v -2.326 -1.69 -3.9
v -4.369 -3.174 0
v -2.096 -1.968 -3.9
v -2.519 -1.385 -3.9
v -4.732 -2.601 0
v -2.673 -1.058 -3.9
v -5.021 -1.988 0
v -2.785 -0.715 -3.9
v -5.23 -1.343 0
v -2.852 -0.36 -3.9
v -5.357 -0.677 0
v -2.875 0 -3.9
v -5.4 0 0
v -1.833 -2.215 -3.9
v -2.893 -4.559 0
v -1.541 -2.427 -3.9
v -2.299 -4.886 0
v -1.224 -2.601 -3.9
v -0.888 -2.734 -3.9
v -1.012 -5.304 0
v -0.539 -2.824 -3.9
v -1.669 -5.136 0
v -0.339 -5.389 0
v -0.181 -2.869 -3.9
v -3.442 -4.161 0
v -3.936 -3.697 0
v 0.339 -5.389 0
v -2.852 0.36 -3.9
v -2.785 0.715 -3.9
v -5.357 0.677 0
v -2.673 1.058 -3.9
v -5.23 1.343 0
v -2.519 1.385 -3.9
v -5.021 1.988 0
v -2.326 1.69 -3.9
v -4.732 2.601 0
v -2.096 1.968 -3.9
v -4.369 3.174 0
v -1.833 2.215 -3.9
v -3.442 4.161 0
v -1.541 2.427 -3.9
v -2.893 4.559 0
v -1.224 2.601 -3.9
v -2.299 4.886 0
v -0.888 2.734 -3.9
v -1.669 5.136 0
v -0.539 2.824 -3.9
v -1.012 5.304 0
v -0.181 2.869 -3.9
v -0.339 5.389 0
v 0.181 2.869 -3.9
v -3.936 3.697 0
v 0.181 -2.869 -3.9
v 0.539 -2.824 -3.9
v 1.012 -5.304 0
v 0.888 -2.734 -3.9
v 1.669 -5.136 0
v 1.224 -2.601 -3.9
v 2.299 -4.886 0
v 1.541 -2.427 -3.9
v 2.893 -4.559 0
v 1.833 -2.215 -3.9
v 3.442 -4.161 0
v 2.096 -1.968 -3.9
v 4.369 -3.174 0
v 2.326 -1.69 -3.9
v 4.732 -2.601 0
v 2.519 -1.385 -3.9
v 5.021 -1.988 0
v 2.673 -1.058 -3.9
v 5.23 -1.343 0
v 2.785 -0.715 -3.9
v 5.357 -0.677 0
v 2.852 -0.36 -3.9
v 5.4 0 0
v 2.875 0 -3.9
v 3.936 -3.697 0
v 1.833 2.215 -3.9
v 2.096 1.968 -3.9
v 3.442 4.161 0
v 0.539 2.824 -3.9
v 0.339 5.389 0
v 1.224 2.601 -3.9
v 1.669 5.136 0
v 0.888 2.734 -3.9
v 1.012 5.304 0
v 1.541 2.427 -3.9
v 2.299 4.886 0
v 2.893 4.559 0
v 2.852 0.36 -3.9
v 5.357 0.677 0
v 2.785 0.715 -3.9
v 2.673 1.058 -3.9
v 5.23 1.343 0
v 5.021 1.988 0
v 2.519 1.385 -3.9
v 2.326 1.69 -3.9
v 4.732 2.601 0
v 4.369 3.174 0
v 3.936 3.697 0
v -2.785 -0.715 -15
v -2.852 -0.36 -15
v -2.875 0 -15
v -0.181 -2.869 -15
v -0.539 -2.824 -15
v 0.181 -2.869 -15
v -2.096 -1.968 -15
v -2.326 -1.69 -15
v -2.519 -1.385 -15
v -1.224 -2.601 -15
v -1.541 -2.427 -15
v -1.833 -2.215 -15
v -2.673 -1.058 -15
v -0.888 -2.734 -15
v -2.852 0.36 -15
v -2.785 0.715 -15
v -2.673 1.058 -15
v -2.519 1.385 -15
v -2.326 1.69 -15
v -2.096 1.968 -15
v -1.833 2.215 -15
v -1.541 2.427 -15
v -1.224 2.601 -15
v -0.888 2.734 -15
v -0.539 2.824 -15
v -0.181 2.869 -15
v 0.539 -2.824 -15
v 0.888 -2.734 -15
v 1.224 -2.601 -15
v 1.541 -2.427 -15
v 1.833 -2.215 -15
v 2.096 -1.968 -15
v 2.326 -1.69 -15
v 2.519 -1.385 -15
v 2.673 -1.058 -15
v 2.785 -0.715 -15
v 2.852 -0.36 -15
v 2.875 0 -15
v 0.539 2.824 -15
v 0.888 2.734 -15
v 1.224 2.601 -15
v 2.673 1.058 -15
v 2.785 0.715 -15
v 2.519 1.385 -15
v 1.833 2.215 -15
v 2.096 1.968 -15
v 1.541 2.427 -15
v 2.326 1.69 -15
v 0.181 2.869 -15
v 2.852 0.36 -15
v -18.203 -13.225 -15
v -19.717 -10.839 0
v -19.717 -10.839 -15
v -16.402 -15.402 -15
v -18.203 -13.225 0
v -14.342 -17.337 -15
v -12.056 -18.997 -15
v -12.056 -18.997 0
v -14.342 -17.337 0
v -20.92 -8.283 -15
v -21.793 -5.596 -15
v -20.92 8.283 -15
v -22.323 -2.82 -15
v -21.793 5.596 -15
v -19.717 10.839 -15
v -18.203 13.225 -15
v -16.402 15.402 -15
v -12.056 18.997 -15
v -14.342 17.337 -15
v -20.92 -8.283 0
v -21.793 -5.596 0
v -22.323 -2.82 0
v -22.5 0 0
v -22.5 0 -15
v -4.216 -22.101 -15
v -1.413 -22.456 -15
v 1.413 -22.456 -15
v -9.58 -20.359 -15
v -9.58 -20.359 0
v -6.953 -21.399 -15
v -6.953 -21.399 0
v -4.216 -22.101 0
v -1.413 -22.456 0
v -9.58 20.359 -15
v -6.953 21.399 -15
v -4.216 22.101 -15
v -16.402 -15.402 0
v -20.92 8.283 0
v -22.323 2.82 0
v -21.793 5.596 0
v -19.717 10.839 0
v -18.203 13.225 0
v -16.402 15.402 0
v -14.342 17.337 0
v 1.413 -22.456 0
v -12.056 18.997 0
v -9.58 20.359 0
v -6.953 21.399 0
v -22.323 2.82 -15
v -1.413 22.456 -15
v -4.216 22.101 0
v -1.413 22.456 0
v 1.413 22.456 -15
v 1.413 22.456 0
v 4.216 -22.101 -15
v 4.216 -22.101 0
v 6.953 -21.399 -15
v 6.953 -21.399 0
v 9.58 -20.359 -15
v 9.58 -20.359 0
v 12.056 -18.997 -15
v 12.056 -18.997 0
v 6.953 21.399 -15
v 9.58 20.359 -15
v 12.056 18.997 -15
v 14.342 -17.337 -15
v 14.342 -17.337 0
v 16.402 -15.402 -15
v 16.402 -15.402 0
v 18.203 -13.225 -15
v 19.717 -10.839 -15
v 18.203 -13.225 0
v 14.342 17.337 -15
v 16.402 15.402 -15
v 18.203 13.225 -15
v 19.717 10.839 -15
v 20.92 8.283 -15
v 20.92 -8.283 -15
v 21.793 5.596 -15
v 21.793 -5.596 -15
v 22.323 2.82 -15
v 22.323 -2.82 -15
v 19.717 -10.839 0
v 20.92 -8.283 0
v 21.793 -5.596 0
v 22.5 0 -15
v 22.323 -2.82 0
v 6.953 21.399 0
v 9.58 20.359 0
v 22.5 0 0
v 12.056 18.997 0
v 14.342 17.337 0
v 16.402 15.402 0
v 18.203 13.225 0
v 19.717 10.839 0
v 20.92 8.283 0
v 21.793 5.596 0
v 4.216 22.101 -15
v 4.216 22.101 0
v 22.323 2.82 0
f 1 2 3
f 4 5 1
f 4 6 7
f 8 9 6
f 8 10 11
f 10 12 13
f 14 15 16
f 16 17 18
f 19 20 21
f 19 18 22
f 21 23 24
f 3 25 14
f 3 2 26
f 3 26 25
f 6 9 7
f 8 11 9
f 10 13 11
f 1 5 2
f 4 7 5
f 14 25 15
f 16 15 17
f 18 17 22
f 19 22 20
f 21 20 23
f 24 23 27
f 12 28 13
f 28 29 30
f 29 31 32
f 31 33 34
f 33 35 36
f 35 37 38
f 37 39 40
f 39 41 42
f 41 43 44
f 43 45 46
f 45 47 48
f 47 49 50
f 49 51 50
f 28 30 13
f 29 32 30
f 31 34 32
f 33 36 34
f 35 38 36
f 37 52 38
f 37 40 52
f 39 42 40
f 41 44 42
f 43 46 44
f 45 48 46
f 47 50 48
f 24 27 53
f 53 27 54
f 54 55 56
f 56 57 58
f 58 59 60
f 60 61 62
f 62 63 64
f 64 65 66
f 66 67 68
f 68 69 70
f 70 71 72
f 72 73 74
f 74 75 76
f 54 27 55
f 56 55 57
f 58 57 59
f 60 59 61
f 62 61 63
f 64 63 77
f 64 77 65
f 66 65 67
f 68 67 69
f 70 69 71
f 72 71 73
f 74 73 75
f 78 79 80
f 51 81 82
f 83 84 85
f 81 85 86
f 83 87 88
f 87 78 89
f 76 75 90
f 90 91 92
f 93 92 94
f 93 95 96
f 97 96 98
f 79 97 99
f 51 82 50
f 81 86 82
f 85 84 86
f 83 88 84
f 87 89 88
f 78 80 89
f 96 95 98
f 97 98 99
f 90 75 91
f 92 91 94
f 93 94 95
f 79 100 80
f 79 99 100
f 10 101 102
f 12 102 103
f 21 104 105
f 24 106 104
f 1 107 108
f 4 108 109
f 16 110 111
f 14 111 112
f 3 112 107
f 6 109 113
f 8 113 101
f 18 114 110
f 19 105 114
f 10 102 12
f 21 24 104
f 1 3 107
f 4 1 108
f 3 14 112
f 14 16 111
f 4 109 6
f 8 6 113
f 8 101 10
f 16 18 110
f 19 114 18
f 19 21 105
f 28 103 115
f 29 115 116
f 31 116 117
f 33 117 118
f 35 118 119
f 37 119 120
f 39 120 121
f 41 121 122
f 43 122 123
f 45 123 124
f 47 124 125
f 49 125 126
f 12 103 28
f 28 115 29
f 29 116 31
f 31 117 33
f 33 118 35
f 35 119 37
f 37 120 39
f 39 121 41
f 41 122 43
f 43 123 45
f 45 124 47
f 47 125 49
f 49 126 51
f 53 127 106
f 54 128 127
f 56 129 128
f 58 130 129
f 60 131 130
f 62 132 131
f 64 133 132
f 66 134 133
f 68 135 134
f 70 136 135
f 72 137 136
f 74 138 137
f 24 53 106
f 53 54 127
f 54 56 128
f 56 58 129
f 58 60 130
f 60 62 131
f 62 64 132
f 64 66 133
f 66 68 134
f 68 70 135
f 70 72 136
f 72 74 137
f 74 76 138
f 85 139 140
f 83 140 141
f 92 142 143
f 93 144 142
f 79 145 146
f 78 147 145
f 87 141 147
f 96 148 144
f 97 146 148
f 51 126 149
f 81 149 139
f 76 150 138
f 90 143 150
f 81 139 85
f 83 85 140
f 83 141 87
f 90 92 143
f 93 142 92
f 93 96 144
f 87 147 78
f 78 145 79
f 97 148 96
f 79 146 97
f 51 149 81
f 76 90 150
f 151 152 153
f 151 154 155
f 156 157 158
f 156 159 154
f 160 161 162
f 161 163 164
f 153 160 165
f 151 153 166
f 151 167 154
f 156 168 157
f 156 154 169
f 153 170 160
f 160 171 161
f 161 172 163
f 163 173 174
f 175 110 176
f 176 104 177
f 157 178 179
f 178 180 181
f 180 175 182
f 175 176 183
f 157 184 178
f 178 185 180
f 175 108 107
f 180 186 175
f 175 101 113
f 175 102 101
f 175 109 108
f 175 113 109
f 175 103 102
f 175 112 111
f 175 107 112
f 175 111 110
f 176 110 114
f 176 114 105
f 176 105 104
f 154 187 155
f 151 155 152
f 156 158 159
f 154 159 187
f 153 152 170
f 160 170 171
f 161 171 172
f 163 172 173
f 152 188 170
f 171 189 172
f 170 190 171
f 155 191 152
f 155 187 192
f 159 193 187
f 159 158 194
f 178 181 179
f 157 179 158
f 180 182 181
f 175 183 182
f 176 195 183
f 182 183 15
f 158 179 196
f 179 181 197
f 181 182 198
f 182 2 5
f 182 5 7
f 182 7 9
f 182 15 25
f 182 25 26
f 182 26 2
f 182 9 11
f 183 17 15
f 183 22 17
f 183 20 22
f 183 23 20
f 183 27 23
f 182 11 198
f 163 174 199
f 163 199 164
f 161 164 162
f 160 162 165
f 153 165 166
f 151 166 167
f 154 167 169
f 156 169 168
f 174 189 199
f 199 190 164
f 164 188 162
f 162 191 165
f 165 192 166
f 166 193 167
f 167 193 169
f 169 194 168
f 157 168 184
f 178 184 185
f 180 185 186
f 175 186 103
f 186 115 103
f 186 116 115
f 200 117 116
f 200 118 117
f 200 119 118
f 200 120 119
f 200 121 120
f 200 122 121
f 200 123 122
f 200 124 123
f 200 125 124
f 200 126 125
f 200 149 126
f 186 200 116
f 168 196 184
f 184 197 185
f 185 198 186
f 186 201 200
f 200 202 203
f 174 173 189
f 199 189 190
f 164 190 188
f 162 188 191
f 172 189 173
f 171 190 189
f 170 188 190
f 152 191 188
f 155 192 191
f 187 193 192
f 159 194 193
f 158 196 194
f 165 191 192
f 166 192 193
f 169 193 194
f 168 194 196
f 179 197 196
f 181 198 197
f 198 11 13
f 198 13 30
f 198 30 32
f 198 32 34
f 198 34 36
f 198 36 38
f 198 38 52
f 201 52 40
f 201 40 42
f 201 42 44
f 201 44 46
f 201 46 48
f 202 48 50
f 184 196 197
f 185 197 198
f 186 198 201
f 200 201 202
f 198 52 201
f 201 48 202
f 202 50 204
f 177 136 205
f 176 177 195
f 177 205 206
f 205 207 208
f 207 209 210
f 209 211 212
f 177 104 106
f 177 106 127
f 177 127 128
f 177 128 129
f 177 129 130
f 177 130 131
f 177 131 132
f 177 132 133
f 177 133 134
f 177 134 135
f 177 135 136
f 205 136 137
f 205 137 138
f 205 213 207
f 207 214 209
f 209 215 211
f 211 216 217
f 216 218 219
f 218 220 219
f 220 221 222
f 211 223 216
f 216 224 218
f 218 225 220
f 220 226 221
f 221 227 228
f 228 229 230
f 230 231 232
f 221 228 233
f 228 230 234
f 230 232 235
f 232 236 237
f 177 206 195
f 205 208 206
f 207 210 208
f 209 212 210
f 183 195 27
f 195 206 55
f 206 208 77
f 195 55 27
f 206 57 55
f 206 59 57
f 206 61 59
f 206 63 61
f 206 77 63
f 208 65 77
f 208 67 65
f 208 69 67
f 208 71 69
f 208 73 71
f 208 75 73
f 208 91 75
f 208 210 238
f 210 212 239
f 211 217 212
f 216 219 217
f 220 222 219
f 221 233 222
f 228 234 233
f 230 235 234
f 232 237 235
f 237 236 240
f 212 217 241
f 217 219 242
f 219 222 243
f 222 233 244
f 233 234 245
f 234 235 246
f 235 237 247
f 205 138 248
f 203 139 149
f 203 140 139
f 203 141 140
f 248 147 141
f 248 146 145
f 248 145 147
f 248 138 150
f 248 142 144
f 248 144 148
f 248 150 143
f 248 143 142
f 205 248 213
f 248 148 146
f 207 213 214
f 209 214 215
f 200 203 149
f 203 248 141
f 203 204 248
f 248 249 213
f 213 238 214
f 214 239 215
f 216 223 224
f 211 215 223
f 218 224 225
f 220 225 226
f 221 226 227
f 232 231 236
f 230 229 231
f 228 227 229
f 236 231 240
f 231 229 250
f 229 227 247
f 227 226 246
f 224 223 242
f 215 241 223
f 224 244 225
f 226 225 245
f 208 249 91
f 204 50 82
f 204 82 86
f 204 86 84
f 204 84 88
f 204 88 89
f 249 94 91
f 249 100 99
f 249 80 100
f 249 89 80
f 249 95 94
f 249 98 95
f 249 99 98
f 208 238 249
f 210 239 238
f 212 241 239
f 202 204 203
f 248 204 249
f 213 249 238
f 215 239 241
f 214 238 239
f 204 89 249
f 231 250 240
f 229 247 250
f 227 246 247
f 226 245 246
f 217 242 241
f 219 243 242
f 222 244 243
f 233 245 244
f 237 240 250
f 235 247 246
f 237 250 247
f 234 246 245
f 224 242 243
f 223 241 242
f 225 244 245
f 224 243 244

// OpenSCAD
$fn = 50;

difference() {
	union() {
		translate(v = [0, 0, -15.0]) {
			cylinder(h = 15, r = 22.5);
		}
	}
	union() {
		translate(v = [0, 0, 0]) {
			rotate(a = [0, 0, 0]) {
				difference() {
					union() {
						translate(v = [0, 0, -18.0]) {
							cylinder(h = 18, r = 2.6);
						}
						translate(v = [0, 0, -3.9]) {
							cylinder(h = 3.9, r1 = 2.875, r2 = 5.4);
						}
						translate(v = [0, 0, -18.0]) {
							cylinder(h = 18, r = 2.875);
						}
						translate(v = [0, 0, -18.0]) {
							cylinder(h = 18, r = 2.6);
						}
					}
					union();
				}
			}
		}
	}
}
